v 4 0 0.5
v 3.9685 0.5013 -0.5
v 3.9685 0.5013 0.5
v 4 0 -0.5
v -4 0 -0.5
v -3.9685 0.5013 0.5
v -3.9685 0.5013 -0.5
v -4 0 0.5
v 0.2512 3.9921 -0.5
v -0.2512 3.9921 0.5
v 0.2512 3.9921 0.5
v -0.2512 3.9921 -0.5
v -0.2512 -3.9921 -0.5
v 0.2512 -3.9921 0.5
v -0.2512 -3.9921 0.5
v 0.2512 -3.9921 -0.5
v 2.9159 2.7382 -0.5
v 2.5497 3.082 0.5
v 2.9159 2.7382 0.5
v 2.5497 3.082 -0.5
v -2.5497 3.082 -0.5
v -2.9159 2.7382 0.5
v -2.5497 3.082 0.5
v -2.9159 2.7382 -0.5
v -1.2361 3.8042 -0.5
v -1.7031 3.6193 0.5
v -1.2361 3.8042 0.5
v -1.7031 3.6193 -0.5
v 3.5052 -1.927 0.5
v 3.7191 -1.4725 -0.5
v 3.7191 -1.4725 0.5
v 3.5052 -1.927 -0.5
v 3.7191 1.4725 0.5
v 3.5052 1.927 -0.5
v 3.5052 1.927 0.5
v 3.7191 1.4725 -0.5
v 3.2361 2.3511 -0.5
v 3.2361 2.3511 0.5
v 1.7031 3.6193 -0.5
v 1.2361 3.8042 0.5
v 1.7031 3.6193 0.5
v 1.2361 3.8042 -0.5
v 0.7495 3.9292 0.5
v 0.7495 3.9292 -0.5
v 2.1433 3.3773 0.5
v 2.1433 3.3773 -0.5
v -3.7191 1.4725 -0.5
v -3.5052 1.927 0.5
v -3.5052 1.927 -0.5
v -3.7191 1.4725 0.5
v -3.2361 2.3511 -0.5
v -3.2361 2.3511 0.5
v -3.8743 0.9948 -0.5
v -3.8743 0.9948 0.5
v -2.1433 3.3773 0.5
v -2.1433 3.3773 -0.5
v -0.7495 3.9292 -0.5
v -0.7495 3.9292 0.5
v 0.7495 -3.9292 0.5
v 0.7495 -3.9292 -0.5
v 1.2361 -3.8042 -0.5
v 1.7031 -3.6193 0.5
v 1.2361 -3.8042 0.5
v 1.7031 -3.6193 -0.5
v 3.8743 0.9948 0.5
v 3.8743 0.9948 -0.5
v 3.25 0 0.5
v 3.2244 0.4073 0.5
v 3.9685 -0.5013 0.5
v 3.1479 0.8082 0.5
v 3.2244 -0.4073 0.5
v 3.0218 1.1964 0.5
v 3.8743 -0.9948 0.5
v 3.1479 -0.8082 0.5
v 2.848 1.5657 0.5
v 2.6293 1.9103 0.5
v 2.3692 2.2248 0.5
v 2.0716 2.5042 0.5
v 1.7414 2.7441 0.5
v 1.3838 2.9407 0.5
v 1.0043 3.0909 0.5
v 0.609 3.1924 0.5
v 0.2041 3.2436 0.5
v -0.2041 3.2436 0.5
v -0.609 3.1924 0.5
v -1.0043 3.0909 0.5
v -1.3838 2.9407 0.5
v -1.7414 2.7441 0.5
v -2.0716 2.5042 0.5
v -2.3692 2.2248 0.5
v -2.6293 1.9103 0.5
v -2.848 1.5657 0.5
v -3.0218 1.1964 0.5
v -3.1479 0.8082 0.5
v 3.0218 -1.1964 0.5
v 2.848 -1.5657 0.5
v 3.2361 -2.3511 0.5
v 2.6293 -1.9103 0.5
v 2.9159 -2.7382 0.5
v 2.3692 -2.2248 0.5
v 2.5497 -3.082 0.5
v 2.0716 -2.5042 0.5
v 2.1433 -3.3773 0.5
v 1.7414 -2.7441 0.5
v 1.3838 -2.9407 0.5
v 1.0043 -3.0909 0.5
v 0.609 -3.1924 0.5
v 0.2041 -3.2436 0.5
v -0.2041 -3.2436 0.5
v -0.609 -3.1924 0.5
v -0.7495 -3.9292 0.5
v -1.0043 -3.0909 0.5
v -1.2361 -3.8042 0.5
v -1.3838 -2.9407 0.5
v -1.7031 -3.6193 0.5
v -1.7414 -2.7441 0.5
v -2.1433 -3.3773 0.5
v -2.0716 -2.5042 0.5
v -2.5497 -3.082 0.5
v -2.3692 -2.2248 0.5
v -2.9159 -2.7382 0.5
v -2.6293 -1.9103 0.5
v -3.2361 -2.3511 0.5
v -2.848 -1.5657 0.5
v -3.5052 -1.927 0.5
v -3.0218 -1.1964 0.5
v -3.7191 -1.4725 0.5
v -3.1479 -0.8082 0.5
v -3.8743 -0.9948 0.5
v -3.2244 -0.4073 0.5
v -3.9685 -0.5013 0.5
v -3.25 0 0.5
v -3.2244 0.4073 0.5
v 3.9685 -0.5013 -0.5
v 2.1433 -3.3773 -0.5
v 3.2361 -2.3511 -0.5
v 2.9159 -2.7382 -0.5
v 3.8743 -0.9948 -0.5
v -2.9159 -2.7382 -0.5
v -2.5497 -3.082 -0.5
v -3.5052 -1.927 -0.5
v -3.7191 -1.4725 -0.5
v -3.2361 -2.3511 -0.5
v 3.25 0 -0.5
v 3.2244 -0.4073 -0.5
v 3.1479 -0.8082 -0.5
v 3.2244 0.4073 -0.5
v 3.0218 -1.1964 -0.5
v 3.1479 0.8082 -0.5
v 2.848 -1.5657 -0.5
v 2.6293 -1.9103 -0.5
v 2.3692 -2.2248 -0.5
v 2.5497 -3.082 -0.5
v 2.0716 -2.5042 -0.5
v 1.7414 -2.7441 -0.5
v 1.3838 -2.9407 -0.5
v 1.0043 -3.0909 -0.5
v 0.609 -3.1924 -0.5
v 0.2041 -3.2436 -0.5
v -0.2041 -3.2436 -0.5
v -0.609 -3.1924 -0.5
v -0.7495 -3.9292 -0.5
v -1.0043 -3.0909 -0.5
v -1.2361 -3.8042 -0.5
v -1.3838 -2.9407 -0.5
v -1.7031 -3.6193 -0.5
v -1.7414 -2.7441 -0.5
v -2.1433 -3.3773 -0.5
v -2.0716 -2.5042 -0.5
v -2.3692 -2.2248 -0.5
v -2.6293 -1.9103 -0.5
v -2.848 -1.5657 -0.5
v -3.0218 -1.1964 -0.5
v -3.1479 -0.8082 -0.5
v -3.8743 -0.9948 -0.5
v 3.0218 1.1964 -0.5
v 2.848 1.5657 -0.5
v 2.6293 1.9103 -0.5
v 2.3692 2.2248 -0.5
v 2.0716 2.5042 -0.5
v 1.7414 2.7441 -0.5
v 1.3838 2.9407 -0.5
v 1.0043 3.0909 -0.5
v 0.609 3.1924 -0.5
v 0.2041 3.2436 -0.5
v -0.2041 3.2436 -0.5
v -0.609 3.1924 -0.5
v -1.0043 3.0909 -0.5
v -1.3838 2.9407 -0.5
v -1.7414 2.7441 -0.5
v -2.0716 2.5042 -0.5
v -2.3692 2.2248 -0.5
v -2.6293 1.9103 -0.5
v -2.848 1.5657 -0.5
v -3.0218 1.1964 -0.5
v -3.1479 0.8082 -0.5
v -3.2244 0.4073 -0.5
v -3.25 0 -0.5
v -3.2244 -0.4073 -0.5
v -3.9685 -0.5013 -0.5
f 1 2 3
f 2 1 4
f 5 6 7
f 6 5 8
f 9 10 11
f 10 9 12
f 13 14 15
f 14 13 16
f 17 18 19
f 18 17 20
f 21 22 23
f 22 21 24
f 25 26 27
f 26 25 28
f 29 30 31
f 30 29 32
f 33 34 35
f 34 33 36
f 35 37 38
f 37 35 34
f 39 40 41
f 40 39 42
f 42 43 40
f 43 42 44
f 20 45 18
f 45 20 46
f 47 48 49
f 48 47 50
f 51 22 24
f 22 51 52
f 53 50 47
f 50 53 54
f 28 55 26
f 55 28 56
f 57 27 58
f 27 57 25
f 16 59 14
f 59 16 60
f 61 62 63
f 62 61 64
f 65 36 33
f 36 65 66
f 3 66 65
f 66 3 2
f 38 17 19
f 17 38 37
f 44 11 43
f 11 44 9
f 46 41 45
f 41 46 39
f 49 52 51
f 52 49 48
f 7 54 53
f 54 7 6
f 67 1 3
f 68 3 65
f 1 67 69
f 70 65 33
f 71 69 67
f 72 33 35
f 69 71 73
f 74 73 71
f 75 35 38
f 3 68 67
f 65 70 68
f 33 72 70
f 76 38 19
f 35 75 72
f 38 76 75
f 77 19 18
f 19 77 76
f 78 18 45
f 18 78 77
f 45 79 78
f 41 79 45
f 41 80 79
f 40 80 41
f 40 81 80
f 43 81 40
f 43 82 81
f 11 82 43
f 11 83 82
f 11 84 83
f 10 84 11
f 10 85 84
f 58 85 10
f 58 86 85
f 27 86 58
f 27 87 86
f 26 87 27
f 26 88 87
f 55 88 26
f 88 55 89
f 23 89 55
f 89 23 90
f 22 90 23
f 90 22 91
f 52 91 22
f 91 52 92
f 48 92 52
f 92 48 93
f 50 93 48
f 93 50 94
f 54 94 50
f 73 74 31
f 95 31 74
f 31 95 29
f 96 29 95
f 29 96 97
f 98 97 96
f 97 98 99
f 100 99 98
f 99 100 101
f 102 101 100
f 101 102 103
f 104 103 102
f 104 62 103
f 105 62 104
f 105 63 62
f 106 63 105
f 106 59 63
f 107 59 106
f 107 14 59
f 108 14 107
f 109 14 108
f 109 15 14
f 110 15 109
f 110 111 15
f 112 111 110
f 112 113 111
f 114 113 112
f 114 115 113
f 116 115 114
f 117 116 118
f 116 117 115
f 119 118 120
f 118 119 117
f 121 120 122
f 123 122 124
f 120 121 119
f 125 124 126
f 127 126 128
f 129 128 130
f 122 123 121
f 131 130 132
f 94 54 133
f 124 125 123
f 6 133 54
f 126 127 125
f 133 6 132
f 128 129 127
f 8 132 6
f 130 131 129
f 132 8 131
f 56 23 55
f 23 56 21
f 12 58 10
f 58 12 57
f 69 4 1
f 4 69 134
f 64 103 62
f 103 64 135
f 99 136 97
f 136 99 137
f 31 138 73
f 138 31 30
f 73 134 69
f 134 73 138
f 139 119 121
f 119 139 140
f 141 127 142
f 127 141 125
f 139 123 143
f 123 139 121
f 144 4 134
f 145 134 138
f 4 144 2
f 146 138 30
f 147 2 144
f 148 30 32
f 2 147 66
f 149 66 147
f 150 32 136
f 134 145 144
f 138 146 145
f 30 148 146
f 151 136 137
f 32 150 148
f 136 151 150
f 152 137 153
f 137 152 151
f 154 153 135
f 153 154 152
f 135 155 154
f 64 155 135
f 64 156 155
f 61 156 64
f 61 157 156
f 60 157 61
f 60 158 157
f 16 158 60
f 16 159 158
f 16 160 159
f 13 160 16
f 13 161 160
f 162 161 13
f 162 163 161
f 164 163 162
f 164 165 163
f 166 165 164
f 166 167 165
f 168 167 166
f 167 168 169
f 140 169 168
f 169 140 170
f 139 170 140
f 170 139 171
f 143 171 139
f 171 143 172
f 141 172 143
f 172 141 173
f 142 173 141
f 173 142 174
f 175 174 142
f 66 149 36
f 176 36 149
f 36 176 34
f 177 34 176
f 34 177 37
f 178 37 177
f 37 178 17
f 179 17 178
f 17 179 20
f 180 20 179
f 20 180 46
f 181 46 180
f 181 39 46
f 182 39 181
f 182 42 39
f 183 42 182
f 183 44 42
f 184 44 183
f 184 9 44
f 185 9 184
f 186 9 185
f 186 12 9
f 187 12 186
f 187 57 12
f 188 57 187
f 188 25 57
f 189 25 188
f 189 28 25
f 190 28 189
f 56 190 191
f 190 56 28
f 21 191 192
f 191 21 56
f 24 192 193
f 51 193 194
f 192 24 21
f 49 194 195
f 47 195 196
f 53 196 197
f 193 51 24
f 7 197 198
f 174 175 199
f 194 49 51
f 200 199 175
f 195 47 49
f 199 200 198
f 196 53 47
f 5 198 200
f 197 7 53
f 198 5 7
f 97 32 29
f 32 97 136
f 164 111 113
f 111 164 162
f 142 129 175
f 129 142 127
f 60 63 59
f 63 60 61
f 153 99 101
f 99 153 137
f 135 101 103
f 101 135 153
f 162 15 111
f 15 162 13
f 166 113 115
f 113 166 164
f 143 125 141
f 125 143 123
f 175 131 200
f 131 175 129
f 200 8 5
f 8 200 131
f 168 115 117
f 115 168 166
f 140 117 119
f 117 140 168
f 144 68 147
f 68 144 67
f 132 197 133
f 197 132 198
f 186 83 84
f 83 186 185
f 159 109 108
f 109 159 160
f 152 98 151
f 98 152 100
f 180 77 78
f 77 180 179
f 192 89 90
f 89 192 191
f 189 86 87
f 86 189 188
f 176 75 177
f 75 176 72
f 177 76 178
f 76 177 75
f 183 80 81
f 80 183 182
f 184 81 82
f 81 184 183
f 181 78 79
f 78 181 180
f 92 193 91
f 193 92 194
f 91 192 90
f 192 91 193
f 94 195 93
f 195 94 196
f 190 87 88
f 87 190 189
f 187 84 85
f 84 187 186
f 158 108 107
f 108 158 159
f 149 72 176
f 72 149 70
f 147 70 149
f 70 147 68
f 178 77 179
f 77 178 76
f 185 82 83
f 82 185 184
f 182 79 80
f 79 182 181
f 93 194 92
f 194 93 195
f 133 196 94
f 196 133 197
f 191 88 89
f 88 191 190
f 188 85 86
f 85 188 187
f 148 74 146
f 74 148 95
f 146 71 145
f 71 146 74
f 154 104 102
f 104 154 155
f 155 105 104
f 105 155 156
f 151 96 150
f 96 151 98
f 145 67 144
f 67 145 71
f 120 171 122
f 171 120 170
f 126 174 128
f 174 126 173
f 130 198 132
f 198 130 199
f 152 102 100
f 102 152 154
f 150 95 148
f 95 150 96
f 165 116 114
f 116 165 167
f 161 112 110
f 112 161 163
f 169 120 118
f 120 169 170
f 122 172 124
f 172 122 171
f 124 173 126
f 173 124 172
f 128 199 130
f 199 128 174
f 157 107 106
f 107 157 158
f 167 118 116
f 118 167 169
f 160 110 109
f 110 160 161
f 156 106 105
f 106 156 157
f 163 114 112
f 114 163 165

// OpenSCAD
$fn = 50;


difference() {
	union() {
		translate(v = [0, 0, -0.5000000000]) {
			cylinder(h = 1, r = 4.0000000000);
		}
	}
	union() {
		translate(v = [0, 0, -100.0000000000]) {
			cylinder(h = 200, r = 3.2500000000);
		}
	}
}
